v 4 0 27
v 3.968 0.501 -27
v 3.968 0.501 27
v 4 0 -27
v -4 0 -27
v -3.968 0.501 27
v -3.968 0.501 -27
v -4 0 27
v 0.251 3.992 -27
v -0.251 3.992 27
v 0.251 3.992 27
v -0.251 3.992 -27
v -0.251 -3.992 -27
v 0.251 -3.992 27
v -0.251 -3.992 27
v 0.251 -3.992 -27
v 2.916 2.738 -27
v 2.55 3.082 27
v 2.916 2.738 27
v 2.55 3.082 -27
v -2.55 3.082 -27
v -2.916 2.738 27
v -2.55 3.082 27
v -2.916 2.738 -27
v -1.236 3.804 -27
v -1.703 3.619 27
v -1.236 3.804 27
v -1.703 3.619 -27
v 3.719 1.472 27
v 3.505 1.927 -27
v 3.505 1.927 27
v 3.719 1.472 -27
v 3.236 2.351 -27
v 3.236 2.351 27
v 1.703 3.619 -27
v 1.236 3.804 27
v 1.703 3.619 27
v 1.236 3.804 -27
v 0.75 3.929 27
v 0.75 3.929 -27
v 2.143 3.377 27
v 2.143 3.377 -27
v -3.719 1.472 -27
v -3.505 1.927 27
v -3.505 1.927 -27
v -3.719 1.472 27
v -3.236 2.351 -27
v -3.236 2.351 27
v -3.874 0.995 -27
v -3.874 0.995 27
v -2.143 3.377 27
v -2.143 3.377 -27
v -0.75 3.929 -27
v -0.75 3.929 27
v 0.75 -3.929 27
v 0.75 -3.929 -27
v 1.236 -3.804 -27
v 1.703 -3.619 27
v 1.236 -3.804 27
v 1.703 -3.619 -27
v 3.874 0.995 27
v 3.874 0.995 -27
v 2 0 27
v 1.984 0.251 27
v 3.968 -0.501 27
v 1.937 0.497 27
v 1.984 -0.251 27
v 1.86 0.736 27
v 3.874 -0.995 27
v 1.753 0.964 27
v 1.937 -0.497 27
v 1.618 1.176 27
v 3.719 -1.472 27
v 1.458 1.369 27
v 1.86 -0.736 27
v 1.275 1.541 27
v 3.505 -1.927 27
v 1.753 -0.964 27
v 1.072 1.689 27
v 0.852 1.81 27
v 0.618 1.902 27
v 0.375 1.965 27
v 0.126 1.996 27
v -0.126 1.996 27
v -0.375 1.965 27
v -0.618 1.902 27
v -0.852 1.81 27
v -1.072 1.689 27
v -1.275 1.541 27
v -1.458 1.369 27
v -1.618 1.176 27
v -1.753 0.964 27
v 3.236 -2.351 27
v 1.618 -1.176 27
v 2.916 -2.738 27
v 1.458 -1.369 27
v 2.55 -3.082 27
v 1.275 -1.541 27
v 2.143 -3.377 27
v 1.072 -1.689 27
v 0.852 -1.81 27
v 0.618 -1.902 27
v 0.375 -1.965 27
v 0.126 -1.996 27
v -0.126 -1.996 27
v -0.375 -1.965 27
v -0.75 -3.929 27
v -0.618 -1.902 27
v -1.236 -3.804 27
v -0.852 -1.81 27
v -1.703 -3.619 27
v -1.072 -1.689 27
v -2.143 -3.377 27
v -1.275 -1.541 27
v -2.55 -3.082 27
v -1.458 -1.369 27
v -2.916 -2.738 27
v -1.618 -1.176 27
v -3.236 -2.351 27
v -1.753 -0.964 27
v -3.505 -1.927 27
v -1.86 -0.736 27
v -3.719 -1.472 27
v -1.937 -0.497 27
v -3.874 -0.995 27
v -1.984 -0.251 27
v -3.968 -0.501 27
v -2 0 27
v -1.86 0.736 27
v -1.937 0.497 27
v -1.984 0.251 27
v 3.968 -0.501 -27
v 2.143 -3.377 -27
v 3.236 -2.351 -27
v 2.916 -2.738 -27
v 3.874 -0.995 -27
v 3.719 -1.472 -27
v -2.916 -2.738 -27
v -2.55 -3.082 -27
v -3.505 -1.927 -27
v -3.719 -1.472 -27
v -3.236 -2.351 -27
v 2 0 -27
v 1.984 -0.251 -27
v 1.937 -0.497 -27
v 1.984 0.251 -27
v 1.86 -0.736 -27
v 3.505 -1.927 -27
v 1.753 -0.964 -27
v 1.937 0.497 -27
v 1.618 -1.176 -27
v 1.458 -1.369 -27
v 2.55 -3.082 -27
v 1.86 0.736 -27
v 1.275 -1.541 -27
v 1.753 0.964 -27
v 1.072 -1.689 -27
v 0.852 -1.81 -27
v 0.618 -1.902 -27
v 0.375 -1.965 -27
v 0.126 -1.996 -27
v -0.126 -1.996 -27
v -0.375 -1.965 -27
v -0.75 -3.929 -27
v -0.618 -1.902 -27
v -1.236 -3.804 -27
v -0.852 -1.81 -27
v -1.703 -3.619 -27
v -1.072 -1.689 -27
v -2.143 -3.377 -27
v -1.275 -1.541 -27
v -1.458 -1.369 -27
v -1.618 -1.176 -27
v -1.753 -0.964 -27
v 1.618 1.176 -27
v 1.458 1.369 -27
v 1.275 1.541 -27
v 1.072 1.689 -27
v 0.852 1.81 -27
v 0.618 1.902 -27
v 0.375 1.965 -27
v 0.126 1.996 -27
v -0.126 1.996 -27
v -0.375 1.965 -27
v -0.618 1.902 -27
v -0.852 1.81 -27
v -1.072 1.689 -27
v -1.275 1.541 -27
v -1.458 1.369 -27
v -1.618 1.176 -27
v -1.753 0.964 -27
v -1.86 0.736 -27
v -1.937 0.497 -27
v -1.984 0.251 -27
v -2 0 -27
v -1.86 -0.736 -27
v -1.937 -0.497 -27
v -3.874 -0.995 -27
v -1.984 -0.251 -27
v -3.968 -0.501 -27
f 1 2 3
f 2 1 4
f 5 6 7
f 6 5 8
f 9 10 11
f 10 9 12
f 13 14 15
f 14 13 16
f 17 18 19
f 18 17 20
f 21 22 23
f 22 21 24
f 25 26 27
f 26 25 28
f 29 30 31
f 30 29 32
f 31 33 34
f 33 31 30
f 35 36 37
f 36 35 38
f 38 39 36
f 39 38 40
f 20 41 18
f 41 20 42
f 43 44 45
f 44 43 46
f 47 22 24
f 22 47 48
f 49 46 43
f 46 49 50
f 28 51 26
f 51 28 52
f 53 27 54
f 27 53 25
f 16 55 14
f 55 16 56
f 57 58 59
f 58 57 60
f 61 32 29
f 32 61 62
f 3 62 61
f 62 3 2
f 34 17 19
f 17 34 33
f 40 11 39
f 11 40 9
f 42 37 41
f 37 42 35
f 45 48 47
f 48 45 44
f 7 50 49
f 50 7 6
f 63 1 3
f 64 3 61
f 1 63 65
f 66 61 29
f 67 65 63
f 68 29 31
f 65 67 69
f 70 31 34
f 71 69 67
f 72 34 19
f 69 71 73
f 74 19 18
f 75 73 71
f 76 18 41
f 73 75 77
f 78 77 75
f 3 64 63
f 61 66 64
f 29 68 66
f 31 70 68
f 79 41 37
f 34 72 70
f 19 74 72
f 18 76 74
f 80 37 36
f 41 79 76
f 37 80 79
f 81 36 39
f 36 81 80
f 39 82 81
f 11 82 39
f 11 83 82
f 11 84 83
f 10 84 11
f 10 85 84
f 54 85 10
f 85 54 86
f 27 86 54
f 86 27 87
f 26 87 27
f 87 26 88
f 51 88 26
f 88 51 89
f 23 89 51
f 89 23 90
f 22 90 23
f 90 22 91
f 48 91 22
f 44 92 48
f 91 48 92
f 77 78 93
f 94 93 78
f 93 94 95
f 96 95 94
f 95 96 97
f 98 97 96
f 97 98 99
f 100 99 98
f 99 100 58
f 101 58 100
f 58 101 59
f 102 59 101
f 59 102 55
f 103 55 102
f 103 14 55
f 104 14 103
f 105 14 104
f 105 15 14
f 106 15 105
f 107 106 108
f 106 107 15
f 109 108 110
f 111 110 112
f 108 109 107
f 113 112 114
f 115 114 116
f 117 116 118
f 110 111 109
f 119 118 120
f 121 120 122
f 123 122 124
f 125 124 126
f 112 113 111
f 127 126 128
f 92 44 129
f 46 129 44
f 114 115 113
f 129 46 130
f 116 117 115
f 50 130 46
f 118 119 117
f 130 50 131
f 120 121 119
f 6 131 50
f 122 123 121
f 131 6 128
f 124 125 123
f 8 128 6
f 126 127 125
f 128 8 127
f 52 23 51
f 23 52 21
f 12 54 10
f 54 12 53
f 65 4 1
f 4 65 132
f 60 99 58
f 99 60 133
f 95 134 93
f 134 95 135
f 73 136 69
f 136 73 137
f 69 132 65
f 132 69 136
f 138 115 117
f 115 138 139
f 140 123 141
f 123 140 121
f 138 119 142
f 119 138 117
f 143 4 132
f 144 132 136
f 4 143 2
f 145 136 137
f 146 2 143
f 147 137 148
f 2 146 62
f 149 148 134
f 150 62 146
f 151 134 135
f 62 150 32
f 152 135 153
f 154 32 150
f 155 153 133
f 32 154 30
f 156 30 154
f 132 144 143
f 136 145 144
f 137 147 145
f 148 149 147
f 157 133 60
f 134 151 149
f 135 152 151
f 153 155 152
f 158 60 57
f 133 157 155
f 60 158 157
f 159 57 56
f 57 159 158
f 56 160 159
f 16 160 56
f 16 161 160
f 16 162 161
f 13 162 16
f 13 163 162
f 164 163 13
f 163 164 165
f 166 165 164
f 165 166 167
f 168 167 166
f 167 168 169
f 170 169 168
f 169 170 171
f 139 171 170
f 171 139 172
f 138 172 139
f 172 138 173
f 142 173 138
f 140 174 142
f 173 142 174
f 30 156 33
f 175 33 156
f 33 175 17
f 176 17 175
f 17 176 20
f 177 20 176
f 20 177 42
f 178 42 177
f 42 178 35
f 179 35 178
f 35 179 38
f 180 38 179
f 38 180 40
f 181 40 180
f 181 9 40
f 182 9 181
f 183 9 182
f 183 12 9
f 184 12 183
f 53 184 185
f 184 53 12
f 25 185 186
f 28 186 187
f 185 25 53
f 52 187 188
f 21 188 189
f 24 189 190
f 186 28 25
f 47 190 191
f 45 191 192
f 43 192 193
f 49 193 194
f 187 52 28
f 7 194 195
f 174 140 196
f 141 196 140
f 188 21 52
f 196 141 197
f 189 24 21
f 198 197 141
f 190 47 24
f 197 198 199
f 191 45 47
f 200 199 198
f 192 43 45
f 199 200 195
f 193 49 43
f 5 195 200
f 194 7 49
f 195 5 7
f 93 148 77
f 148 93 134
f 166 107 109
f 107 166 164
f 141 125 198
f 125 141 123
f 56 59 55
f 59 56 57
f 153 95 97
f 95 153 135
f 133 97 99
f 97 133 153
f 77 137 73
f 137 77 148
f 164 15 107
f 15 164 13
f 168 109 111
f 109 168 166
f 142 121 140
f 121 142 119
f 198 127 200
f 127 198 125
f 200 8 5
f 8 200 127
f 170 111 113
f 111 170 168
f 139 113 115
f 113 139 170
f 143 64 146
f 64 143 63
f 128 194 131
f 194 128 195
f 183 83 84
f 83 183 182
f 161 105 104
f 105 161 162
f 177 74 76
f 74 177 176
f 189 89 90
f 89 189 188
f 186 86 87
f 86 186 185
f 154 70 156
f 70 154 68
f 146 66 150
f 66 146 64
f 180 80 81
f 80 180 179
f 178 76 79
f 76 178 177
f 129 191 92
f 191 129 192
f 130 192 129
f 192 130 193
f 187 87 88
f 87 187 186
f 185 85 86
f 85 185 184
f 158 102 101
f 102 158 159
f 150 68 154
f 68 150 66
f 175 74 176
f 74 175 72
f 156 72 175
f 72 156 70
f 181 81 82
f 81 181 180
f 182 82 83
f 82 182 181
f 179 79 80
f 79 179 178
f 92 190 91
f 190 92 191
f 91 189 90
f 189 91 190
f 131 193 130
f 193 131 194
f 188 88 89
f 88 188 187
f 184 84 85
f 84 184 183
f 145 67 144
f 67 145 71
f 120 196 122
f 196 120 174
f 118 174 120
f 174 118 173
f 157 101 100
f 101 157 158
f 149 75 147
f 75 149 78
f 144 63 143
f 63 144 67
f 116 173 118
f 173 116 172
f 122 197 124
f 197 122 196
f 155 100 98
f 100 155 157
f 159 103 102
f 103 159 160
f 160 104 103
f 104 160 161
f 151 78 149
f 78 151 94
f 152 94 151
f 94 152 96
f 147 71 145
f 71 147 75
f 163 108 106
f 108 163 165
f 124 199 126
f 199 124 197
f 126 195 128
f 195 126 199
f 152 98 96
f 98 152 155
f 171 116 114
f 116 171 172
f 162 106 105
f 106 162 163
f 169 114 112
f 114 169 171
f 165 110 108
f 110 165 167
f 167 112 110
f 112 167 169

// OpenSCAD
$fn = 50;


difference() {
	union() {
		translate(v = [0, 0, -27.0000000000]) {
			cylinder(h = 54, r = 4.0000000000);
		}
	}
	union() {
		translate(v = [0, 0, -100.0000000000]) {
			cylinder(h = 200, r = 2);
		}
	}
}
